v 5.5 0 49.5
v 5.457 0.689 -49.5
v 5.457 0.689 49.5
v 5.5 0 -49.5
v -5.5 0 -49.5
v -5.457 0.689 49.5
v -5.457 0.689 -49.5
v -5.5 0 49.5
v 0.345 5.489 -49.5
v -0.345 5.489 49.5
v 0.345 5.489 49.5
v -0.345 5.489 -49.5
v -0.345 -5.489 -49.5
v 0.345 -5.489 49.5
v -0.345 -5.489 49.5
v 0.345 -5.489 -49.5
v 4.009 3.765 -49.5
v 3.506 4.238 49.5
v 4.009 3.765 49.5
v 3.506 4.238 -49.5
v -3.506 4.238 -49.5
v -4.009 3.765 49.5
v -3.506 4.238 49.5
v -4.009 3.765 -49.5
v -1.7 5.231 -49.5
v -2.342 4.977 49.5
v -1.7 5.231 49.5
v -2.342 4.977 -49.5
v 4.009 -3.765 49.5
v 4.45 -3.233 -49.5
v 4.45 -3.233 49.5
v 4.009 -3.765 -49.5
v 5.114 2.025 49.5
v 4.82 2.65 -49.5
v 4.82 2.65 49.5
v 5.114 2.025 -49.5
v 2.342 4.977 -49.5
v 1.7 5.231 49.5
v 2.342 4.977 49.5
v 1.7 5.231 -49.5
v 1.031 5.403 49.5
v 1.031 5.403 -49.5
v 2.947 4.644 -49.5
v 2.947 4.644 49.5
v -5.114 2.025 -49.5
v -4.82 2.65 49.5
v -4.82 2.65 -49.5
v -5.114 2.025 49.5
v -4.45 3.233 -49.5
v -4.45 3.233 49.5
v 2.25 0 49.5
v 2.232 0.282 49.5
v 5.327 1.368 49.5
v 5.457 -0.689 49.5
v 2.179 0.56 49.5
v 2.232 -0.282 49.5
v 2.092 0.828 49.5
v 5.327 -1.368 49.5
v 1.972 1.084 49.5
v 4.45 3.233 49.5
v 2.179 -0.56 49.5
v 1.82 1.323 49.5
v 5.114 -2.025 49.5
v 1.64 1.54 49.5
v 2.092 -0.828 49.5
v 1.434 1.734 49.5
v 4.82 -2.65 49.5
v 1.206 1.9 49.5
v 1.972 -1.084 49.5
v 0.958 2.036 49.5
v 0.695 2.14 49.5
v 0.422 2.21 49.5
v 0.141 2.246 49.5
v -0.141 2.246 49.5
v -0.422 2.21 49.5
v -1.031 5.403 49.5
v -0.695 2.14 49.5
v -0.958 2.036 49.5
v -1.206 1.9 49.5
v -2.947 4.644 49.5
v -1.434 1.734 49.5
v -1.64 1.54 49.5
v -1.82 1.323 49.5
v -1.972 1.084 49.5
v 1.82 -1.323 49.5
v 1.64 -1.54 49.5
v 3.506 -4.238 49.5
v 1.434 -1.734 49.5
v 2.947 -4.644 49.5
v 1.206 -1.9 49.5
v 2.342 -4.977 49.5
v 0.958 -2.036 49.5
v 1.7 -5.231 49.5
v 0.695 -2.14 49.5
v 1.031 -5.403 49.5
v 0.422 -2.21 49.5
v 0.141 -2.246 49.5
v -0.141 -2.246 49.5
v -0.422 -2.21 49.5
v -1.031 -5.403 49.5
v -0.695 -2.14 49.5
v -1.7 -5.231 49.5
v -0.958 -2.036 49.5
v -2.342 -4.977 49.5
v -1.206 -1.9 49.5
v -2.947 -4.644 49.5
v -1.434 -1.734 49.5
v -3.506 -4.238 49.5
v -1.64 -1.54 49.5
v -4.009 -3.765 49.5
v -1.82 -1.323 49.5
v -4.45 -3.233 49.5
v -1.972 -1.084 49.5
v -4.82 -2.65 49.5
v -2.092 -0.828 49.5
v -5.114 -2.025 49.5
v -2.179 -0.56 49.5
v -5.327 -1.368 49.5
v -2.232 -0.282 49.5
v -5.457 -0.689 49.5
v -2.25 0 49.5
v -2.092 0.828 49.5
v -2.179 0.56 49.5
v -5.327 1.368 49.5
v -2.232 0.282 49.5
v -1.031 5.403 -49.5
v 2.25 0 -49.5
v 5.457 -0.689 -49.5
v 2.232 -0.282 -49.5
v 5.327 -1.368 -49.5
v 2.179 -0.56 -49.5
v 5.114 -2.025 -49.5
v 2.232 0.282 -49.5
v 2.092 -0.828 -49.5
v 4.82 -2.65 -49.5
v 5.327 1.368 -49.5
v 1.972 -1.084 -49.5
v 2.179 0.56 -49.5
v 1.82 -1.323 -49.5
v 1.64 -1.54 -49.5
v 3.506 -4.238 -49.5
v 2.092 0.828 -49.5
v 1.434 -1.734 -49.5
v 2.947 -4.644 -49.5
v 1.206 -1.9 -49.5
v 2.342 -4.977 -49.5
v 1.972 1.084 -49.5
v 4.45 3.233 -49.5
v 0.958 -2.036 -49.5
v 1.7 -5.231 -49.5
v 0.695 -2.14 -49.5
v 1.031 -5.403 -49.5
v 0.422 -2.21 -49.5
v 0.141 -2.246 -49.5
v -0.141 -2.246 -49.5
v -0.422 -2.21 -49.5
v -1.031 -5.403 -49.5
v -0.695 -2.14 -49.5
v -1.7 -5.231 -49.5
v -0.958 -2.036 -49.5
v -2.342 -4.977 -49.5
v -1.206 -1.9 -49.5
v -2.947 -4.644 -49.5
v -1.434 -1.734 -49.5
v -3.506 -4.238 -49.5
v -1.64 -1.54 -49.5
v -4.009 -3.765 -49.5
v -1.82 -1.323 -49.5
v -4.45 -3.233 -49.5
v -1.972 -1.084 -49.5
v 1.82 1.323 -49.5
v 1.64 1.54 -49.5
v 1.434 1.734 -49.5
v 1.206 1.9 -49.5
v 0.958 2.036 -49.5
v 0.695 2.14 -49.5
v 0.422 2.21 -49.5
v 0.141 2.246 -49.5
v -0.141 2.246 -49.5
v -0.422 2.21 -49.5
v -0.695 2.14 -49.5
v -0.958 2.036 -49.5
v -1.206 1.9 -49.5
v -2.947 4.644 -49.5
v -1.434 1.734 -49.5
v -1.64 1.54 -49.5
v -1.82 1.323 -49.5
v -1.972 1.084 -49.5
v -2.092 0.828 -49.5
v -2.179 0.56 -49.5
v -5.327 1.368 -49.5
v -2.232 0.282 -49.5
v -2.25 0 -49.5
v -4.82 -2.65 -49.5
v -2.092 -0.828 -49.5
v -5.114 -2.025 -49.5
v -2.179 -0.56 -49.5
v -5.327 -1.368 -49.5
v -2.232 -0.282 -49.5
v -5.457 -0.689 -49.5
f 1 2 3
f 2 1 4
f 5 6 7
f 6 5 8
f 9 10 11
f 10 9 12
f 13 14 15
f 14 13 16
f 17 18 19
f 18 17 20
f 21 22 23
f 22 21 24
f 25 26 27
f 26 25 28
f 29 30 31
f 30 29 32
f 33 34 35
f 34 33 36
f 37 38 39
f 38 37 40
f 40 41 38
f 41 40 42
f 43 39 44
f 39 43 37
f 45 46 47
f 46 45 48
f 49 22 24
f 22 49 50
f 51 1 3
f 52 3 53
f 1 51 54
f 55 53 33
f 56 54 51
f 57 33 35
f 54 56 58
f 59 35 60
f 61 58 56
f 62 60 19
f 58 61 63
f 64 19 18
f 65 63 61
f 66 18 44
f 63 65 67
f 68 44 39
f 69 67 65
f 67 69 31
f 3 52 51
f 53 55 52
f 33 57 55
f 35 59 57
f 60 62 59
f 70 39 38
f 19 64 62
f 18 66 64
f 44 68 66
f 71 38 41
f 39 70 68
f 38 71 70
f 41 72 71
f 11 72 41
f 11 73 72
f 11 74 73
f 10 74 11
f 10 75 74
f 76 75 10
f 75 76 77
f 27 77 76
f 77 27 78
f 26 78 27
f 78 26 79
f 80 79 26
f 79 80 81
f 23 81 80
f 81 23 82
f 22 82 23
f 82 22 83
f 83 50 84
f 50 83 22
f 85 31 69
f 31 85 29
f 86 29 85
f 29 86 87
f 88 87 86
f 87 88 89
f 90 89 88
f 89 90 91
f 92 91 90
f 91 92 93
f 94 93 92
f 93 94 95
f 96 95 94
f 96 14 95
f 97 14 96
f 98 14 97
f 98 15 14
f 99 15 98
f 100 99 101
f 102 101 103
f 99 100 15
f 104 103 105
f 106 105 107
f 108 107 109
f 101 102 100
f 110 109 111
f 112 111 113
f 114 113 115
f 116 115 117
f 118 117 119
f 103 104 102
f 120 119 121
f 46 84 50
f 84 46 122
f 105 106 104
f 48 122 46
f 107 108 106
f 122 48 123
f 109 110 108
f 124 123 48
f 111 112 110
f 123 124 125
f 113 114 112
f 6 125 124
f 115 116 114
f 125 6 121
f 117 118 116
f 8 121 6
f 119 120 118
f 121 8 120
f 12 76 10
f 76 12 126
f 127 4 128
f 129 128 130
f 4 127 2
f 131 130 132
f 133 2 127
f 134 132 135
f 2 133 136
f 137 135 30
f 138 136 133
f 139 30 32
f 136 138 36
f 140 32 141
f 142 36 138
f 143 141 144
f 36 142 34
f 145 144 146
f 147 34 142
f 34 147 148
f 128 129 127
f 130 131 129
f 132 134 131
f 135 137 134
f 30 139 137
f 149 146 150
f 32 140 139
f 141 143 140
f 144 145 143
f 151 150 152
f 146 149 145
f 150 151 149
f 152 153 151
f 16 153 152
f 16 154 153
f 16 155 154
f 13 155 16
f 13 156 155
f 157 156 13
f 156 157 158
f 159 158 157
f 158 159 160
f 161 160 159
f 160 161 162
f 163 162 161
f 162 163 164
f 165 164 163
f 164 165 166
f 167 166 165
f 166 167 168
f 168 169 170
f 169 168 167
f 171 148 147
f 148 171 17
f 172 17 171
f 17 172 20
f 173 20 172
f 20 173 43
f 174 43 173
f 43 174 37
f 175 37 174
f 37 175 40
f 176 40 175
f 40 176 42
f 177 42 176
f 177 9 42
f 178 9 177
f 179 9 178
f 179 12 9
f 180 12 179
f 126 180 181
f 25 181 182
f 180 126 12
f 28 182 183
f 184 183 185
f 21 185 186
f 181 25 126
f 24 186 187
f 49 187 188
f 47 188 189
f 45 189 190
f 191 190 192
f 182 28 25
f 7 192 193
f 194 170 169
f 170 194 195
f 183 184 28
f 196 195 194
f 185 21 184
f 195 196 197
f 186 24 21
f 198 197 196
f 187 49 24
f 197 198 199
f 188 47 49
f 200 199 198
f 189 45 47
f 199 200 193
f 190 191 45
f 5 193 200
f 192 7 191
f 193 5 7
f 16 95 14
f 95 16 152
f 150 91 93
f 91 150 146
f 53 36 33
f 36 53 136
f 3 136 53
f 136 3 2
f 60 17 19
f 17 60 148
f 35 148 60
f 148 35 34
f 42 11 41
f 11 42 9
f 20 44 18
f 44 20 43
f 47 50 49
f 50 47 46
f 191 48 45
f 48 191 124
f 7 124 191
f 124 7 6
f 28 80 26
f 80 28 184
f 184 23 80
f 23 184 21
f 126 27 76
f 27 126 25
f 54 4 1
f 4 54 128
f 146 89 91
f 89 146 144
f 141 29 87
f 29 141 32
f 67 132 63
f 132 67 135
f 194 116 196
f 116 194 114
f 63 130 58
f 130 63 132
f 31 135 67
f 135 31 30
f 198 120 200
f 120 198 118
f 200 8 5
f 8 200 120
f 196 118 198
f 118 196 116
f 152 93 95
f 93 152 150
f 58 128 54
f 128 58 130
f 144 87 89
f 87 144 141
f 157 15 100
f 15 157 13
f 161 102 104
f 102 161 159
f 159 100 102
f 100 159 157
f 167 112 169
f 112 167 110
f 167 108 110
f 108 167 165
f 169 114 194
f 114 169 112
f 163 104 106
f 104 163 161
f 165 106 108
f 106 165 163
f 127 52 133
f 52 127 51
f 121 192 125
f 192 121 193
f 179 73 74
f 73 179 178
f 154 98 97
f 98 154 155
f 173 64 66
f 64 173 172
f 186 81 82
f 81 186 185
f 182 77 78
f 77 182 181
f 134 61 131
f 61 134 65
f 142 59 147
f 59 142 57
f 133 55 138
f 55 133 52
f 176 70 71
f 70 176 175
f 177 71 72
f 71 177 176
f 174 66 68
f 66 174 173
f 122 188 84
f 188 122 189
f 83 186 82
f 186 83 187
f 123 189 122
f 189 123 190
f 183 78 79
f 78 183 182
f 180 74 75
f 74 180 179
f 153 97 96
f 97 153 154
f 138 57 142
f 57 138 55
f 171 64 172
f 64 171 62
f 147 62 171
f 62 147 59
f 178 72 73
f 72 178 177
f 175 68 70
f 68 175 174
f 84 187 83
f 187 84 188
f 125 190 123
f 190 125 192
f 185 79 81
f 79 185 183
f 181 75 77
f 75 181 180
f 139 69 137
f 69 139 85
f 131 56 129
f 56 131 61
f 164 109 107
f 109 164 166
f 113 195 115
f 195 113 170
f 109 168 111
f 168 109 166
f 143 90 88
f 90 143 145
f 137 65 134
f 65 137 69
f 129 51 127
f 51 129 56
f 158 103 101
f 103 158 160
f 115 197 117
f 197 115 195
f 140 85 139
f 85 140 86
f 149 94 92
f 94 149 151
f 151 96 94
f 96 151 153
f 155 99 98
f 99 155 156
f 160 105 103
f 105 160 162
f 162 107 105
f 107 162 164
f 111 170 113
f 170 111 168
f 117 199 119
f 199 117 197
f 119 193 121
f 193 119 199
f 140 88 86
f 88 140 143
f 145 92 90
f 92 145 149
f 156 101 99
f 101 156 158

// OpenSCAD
$fn = 50;


difference() {
	union() {
		translate(v = [0, 0, -49.5000000000]) {
			cylinder(h = 99, r = 5.5000000000);
		}
	}
	union() {
		translate(v = [0, 0, -100.0000000000]) {
			cylinder(h = 200, r = 2.2500000000);
		}
	}
}
